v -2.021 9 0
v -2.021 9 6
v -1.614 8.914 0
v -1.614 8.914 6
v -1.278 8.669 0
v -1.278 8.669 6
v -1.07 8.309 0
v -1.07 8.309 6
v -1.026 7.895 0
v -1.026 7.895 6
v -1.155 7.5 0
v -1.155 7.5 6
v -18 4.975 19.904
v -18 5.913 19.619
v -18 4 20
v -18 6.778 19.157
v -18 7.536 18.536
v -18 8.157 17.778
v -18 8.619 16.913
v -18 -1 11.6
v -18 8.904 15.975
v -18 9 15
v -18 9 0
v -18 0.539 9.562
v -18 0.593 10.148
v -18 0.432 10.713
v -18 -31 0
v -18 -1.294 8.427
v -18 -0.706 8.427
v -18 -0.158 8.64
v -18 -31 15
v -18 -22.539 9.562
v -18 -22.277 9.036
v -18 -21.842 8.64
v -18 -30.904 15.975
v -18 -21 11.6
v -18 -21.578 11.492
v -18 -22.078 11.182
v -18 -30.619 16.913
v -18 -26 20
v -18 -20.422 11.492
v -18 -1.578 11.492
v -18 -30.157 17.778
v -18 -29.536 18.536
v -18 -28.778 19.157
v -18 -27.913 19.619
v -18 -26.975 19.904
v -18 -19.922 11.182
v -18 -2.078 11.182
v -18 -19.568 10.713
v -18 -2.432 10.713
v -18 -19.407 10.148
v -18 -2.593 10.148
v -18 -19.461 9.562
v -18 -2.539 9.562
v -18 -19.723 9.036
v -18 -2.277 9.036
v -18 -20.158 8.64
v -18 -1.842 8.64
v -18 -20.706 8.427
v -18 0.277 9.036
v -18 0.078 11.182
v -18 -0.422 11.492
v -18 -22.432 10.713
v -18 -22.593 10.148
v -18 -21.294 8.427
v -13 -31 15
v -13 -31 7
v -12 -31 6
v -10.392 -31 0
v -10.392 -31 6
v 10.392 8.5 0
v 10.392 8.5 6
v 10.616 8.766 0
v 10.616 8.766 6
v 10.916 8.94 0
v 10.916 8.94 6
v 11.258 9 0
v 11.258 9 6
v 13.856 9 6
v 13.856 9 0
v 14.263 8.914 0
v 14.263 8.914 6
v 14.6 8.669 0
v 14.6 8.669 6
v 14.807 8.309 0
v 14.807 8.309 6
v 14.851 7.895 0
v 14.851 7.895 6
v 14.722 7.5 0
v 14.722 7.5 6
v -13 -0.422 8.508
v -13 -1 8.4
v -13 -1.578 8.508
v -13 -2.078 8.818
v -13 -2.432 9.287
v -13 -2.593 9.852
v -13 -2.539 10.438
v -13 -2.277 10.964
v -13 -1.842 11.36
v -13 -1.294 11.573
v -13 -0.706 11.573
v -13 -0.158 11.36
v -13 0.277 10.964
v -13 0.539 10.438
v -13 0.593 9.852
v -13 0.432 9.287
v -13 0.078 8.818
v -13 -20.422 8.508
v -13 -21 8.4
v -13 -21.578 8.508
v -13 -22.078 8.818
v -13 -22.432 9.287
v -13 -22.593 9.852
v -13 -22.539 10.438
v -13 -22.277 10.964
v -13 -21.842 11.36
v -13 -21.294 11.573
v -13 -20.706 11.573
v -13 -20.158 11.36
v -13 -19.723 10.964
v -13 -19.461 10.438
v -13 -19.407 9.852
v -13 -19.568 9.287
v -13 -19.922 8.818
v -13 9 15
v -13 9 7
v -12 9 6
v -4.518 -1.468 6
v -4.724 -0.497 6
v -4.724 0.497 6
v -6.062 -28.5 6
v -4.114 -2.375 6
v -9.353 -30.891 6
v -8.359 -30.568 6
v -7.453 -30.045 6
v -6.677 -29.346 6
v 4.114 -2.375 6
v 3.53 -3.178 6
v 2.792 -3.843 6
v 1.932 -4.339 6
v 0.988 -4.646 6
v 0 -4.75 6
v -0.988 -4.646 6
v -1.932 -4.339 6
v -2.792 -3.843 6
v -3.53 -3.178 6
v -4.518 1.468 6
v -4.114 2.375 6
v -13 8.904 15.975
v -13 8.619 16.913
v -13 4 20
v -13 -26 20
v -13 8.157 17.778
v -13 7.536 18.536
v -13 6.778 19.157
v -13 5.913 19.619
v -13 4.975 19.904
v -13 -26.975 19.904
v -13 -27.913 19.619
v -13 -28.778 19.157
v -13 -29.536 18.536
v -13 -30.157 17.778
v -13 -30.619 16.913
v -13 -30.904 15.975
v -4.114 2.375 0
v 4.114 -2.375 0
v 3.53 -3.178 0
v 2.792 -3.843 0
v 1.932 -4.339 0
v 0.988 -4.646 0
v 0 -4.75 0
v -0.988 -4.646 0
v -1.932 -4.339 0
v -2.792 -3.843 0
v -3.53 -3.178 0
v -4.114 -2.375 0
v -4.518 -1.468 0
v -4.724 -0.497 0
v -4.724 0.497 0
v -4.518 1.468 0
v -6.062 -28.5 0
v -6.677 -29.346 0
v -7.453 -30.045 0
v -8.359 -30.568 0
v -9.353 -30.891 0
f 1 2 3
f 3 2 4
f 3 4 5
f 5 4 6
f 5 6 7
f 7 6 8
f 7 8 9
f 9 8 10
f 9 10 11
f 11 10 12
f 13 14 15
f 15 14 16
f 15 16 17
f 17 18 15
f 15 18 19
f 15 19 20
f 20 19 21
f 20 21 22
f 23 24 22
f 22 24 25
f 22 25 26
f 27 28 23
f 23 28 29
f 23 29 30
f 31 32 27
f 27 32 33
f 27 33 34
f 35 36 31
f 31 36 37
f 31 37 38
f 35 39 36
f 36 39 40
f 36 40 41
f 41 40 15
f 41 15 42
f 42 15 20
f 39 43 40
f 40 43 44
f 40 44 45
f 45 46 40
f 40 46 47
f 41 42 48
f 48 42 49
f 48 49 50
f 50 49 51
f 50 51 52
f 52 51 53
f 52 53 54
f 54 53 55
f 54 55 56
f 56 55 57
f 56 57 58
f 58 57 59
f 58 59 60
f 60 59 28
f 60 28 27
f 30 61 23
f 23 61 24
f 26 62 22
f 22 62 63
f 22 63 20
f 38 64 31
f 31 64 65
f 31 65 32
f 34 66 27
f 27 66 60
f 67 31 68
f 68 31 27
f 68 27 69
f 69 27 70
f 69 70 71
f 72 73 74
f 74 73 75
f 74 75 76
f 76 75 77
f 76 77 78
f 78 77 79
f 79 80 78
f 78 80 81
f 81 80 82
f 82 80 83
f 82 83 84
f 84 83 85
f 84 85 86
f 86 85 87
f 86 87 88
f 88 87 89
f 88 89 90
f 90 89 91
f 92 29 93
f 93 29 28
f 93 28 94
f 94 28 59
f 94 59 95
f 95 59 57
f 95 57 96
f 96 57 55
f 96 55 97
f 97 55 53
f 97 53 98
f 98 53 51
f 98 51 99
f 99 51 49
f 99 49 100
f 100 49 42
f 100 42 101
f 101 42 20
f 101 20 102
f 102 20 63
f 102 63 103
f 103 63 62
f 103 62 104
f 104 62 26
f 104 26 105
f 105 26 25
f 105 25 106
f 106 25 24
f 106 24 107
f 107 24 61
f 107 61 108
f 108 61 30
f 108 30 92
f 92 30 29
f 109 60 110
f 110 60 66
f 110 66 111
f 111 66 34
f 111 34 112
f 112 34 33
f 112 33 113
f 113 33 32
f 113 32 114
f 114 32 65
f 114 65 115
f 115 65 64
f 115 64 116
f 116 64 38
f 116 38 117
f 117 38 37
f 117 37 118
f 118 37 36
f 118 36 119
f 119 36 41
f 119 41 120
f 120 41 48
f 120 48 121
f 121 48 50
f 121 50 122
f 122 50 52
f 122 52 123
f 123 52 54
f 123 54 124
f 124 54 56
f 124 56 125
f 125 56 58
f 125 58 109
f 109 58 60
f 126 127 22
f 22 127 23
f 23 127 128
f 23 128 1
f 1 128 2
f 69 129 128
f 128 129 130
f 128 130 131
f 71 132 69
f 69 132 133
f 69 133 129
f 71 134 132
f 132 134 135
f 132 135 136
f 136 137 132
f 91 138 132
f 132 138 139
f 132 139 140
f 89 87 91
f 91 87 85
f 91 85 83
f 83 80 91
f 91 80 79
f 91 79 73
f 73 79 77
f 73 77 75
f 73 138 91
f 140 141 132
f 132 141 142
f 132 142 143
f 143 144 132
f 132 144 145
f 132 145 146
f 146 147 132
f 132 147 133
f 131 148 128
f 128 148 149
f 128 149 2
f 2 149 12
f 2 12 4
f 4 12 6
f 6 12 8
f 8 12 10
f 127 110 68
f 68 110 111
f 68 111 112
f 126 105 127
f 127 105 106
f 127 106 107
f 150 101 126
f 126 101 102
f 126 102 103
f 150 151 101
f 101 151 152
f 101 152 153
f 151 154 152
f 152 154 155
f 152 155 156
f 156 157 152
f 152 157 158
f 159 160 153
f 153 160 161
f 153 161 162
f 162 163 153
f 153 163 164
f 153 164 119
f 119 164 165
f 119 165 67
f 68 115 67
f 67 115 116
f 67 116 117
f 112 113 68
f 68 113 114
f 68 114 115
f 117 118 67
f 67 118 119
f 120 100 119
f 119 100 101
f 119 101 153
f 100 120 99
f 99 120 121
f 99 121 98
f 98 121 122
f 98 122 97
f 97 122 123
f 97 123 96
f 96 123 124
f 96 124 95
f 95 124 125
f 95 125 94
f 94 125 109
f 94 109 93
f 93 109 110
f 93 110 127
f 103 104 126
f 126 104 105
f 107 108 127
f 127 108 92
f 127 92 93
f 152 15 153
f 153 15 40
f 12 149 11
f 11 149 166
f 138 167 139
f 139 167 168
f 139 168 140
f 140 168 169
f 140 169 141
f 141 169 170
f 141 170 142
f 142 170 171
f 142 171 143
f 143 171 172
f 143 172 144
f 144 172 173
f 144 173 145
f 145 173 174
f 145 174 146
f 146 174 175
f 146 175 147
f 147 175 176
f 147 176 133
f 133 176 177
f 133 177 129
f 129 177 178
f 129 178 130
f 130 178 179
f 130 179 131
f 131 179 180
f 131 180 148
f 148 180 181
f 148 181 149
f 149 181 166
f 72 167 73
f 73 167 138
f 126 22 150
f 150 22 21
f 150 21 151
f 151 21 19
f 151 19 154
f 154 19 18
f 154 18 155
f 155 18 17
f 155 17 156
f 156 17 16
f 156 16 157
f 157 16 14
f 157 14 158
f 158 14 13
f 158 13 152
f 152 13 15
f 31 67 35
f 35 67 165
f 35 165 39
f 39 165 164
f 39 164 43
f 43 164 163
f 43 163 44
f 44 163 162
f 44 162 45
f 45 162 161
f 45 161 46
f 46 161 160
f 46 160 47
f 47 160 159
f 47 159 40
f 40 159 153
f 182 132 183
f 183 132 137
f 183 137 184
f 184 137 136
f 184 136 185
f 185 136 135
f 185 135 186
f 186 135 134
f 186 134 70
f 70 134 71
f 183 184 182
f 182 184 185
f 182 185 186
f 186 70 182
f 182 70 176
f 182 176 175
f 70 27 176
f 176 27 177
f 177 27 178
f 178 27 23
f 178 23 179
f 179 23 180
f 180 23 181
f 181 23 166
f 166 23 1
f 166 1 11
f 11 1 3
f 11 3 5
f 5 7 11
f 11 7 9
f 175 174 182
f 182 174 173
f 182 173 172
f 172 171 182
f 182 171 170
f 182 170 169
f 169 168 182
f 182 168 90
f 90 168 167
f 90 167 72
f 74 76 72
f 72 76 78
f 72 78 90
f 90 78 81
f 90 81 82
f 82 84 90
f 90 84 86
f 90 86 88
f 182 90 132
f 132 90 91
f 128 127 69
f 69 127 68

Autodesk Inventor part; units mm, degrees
ref_plane "YZ Plane" through (0, 0, 0) normal (1, 0, 0) x (0, 1, 0)
ref_plane "XZ Plane" through (0, 0, 0) normal (0, 1, 0) x (-1, 0, 0)
ref_plane "XY Plane" through (0, 0, 0) normal (0, 0, 1) x (1, 0, 0)
sketch "Sketch1" plane through (0, 0, 0) normal (0, 0, 1) x (1, 0, 0)
  circle A0 centre (0, 0) radius 4.75
  circle A1 centre (0, 0) radius 9
  line L0 (-18, 9) -> (-18, -49.1769)
  line L1 (-18, 9) -> (10.681, 9)
  line L2 (4.1136, -2.375) -> (10.681, 9)
  line L3 (-0.2887, 9) -> (-4.1136, 2.375)
  line L4 (10.681, 9) -> (15.5885, 9)
  line L5 (4.1136, -2.375) -> (7.7942, -4.5) construction
  line L6 (7.7942, -4.5) -> (15.5885, 9)
  line L7 (7.7942, -4.5) -> (-18, -49.1769)
  line L8 (-18, -31) -> (-7.5056, -31)
  line L9 (-13, 9) -> (-13, -31)
  dimension "d1" = 18
  dimension "d0" = 9.5
  dimension "d2" = 18
  dimension "d5" = 120
  dimension "d7" = 60
  dimension "d8" = 40
  dimension "d9" = 5
extrude "Extrusion1" add sketch "Sketch1" along normal blind 6 contours A0 L2 A1 L3 | A1 L7 L8 L9 L1 L3 | L2 L4 L6 A1 | L9 L8 L0 L1 picked at (-2.2884, 6.6758)
extrude "Extrusion2" add sketch "Sketch1" along normal blind 20 contours L9 L8 L0 L1
sketch "Sketch2" plane through (-18, -31, 0) normal (-1, 0, 0) x (0, 0, 1)
  line L0 (0, 40) -> (0, 0) projected
  line L1 (0, 0) -> (20, 0) projected
  line L2 (20, 40) -> (20, 0) projected
  line L3 (0, 40) -> (20, 40) projected
  circle A0 centre (10, 30) radius 1.6
  circle A1 centre (10, 10) radius 1.6
  point P0 (0, 31)
  dimension "d14" = 3.2
  dimension "d15" = 3.2
  dimension "d16" = 10
  dimension "d17" = 10
  dimension "d18" = 10
extrude "Extrusion3" cut sketch "Sketch2" against normal blind 6 contours A0 | A1
fillet "Fillet1" radius 1 3 edges at (15.5885, 9, 3) (10.681, 9, 3) (-0.2887, 9, 3)
fillet "Fillet2" radius 5 3 edges at (-7.5056, -31, 3) (-15.5, -31, 20) (-15.5, 9, 20)
chamfer "Chamfer1" distance 1 angle 45 1 edges at (-13, -11, 6)
properties part number "wheel holder"
